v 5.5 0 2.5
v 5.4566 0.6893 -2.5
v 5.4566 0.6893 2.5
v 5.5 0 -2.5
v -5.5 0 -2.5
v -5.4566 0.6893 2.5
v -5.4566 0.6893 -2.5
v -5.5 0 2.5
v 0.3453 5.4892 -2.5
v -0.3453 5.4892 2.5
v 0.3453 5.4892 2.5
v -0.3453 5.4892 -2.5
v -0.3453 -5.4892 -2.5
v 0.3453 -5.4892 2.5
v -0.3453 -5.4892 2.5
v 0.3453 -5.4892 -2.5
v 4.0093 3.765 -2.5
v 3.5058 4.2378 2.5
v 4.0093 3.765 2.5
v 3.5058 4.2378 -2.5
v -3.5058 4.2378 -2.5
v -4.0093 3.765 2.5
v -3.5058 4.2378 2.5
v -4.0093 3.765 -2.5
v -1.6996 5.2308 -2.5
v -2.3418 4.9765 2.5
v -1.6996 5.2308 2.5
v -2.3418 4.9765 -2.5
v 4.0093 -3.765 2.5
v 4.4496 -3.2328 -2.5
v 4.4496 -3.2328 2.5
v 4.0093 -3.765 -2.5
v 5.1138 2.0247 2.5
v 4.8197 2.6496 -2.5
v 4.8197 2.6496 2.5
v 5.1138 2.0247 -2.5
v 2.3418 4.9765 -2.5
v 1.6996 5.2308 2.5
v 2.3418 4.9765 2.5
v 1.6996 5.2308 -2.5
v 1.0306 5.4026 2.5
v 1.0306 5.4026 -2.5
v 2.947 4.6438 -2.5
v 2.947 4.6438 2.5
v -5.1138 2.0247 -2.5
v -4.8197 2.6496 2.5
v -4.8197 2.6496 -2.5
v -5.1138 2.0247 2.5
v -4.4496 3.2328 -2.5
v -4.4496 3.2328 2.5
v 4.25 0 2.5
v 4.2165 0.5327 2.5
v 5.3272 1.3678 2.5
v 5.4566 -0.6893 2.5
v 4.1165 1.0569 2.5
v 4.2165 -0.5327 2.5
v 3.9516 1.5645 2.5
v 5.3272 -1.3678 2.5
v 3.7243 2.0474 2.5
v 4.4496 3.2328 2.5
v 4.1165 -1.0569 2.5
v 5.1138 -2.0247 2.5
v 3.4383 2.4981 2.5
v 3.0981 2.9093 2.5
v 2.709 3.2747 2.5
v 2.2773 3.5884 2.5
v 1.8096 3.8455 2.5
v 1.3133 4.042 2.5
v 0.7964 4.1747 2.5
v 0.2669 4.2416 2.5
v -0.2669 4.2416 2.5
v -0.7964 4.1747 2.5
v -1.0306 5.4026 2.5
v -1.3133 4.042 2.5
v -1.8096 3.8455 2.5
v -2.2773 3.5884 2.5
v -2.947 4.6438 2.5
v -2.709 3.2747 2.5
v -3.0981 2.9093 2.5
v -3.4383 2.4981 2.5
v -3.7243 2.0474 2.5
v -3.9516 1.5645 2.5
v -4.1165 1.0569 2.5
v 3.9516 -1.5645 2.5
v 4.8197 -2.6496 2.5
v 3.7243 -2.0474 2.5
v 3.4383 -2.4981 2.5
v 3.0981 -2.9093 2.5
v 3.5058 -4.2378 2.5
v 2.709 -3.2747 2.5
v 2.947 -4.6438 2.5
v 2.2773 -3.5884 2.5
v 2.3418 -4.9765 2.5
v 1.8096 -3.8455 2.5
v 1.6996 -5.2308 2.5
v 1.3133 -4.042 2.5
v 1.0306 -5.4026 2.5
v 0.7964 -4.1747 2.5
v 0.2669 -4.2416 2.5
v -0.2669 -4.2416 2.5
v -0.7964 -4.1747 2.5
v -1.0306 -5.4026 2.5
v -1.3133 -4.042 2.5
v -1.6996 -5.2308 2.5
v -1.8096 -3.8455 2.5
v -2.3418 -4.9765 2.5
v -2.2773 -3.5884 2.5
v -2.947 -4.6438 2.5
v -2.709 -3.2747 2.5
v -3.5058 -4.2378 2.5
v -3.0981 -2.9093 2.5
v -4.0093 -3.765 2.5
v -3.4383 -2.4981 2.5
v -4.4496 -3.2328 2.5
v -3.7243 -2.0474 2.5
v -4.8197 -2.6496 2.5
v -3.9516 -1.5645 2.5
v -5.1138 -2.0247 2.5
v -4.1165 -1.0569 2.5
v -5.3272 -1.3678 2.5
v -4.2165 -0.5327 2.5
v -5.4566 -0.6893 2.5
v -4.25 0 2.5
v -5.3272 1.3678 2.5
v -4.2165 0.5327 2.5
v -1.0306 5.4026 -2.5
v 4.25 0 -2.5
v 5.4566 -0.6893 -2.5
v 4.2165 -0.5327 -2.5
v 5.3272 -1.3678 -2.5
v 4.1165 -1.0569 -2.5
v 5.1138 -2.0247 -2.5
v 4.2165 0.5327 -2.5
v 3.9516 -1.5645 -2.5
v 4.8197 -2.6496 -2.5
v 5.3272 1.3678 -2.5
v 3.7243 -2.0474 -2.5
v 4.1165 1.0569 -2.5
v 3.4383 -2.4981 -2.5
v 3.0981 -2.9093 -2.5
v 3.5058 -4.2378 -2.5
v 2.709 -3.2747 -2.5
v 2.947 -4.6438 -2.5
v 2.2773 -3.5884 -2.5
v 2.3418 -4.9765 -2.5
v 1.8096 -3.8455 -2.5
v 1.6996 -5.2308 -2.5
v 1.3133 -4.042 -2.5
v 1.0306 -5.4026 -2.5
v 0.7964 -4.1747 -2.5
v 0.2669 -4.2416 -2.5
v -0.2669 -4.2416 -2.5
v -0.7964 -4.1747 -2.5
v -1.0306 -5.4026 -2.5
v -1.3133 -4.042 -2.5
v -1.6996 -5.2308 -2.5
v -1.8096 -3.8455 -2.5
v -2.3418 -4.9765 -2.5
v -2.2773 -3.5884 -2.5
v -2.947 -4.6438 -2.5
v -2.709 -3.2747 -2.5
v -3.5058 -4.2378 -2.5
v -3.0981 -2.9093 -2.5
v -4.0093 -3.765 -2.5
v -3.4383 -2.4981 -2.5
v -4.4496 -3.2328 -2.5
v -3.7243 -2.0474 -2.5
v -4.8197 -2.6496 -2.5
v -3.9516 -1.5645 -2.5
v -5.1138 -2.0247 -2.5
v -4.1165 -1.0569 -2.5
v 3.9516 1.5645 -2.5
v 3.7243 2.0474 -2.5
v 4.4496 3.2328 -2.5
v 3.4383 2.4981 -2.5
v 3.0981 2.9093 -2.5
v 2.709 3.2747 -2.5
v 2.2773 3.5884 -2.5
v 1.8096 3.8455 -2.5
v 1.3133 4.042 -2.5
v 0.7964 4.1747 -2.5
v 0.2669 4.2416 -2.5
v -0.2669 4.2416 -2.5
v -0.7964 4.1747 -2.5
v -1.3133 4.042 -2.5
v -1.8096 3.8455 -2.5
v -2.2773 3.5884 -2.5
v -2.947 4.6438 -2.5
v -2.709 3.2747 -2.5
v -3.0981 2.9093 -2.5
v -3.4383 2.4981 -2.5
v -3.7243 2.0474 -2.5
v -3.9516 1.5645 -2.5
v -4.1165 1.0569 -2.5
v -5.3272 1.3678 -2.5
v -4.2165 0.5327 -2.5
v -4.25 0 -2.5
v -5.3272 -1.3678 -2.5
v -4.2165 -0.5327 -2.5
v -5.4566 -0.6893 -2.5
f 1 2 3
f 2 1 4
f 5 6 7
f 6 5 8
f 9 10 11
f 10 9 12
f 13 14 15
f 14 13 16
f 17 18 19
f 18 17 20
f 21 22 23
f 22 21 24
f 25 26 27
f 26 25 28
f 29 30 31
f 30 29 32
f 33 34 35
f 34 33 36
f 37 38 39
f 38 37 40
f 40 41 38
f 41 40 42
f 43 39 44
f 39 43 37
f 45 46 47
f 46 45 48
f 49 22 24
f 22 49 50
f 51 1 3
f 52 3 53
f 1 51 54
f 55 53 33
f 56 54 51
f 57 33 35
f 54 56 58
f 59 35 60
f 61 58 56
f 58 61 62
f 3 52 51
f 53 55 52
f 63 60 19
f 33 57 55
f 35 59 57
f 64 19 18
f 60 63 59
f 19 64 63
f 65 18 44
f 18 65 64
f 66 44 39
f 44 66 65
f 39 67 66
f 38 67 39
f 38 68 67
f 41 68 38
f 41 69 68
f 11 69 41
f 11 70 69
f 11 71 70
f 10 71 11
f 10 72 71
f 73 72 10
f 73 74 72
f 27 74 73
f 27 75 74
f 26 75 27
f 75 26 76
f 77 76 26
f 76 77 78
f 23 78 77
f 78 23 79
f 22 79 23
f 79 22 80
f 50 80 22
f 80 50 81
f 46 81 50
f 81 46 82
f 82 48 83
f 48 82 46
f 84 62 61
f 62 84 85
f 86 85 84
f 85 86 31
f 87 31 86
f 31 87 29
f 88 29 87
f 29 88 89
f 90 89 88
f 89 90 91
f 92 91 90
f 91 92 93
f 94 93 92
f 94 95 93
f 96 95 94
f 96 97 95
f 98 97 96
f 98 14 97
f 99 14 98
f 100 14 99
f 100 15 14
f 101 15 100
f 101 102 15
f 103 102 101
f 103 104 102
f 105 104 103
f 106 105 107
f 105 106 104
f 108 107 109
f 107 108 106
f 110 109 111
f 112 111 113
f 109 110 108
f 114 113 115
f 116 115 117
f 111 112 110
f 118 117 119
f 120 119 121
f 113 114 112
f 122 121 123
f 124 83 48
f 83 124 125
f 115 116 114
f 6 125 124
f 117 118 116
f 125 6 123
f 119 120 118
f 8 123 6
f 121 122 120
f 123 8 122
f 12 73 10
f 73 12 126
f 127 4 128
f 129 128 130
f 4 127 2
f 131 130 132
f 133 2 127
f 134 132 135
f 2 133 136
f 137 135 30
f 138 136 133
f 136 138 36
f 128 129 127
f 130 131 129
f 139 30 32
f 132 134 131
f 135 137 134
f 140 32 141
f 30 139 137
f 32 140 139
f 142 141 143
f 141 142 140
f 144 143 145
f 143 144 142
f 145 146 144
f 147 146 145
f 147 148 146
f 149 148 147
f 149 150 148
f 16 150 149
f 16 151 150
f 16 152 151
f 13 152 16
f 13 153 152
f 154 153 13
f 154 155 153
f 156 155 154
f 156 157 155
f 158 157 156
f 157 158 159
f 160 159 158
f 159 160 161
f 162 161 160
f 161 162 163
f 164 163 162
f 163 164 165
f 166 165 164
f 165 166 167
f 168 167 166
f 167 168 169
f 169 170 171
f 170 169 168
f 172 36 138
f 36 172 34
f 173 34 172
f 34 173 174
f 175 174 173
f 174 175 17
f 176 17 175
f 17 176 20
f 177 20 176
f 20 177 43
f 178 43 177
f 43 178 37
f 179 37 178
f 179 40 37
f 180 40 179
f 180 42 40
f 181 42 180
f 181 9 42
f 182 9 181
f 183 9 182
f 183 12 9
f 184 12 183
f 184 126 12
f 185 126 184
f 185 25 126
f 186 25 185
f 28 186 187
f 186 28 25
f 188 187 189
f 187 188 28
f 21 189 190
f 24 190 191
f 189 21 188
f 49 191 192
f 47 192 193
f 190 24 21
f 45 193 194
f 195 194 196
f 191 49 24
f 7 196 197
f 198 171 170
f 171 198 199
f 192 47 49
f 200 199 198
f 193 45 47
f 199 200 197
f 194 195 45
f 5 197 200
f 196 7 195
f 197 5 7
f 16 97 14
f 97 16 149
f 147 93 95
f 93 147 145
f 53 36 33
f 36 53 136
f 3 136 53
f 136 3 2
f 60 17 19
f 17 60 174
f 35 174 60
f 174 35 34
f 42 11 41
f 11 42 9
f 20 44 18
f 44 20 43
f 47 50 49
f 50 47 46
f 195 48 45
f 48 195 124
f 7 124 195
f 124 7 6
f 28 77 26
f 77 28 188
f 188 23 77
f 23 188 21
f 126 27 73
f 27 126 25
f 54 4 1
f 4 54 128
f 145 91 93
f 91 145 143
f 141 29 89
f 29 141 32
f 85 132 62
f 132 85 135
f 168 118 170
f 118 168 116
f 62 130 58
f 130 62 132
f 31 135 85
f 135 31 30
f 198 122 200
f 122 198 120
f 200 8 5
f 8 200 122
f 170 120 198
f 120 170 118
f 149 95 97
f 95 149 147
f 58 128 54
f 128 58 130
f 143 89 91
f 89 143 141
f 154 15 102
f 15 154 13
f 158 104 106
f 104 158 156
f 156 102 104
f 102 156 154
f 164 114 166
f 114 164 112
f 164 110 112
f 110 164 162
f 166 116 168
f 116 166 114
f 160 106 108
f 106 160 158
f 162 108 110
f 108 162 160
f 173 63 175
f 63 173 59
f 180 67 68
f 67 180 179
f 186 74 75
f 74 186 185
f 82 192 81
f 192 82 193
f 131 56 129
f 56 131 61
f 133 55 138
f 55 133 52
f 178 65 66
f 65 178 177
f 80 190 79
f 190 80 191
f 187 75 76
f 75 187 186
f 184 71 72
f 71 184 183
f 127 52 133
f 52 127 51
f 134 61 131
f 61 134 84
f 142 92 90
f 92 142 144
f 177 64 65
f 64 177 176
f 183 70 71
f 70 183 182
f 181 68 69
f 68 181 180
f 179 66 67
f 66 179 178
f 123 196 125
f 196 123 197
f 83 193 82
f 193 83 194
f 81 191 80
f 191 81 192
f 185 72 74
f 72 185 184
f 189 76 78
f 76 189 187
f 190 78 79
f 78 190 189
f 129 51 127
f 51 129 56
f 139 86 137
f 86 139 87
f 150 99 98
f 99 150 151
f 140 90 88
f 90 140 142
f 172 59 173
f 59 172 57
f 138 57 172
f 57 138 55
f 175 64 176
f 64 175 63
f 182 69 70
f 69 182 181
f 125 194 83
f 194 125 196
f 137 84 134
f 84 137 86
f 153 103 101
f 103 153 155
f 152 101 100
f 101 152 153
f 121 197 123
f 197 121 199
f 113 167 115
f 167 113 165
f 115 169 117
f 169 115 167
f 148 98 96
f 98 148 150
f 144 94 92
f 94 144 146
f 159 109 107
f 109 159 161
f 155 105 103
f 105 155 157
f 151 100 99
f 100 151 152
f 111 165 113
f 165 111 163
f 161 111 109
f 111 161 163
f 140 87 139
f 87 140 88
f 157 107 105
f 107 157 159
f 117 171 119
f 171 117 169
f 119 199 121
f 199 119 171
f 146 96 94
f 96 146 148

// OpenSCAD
$fn = 50;


difference() {
	union() {
		translate(v = [0, 0, -2.5000000000]) {
			cylinder(h = 5, r = 5.5000000000);
		}
	}
	union() {
		translate(v = [0, 0, -100.0000000000]) {
			cylinder(h = 200, r = 4.2500000000);
		}
	}
}
